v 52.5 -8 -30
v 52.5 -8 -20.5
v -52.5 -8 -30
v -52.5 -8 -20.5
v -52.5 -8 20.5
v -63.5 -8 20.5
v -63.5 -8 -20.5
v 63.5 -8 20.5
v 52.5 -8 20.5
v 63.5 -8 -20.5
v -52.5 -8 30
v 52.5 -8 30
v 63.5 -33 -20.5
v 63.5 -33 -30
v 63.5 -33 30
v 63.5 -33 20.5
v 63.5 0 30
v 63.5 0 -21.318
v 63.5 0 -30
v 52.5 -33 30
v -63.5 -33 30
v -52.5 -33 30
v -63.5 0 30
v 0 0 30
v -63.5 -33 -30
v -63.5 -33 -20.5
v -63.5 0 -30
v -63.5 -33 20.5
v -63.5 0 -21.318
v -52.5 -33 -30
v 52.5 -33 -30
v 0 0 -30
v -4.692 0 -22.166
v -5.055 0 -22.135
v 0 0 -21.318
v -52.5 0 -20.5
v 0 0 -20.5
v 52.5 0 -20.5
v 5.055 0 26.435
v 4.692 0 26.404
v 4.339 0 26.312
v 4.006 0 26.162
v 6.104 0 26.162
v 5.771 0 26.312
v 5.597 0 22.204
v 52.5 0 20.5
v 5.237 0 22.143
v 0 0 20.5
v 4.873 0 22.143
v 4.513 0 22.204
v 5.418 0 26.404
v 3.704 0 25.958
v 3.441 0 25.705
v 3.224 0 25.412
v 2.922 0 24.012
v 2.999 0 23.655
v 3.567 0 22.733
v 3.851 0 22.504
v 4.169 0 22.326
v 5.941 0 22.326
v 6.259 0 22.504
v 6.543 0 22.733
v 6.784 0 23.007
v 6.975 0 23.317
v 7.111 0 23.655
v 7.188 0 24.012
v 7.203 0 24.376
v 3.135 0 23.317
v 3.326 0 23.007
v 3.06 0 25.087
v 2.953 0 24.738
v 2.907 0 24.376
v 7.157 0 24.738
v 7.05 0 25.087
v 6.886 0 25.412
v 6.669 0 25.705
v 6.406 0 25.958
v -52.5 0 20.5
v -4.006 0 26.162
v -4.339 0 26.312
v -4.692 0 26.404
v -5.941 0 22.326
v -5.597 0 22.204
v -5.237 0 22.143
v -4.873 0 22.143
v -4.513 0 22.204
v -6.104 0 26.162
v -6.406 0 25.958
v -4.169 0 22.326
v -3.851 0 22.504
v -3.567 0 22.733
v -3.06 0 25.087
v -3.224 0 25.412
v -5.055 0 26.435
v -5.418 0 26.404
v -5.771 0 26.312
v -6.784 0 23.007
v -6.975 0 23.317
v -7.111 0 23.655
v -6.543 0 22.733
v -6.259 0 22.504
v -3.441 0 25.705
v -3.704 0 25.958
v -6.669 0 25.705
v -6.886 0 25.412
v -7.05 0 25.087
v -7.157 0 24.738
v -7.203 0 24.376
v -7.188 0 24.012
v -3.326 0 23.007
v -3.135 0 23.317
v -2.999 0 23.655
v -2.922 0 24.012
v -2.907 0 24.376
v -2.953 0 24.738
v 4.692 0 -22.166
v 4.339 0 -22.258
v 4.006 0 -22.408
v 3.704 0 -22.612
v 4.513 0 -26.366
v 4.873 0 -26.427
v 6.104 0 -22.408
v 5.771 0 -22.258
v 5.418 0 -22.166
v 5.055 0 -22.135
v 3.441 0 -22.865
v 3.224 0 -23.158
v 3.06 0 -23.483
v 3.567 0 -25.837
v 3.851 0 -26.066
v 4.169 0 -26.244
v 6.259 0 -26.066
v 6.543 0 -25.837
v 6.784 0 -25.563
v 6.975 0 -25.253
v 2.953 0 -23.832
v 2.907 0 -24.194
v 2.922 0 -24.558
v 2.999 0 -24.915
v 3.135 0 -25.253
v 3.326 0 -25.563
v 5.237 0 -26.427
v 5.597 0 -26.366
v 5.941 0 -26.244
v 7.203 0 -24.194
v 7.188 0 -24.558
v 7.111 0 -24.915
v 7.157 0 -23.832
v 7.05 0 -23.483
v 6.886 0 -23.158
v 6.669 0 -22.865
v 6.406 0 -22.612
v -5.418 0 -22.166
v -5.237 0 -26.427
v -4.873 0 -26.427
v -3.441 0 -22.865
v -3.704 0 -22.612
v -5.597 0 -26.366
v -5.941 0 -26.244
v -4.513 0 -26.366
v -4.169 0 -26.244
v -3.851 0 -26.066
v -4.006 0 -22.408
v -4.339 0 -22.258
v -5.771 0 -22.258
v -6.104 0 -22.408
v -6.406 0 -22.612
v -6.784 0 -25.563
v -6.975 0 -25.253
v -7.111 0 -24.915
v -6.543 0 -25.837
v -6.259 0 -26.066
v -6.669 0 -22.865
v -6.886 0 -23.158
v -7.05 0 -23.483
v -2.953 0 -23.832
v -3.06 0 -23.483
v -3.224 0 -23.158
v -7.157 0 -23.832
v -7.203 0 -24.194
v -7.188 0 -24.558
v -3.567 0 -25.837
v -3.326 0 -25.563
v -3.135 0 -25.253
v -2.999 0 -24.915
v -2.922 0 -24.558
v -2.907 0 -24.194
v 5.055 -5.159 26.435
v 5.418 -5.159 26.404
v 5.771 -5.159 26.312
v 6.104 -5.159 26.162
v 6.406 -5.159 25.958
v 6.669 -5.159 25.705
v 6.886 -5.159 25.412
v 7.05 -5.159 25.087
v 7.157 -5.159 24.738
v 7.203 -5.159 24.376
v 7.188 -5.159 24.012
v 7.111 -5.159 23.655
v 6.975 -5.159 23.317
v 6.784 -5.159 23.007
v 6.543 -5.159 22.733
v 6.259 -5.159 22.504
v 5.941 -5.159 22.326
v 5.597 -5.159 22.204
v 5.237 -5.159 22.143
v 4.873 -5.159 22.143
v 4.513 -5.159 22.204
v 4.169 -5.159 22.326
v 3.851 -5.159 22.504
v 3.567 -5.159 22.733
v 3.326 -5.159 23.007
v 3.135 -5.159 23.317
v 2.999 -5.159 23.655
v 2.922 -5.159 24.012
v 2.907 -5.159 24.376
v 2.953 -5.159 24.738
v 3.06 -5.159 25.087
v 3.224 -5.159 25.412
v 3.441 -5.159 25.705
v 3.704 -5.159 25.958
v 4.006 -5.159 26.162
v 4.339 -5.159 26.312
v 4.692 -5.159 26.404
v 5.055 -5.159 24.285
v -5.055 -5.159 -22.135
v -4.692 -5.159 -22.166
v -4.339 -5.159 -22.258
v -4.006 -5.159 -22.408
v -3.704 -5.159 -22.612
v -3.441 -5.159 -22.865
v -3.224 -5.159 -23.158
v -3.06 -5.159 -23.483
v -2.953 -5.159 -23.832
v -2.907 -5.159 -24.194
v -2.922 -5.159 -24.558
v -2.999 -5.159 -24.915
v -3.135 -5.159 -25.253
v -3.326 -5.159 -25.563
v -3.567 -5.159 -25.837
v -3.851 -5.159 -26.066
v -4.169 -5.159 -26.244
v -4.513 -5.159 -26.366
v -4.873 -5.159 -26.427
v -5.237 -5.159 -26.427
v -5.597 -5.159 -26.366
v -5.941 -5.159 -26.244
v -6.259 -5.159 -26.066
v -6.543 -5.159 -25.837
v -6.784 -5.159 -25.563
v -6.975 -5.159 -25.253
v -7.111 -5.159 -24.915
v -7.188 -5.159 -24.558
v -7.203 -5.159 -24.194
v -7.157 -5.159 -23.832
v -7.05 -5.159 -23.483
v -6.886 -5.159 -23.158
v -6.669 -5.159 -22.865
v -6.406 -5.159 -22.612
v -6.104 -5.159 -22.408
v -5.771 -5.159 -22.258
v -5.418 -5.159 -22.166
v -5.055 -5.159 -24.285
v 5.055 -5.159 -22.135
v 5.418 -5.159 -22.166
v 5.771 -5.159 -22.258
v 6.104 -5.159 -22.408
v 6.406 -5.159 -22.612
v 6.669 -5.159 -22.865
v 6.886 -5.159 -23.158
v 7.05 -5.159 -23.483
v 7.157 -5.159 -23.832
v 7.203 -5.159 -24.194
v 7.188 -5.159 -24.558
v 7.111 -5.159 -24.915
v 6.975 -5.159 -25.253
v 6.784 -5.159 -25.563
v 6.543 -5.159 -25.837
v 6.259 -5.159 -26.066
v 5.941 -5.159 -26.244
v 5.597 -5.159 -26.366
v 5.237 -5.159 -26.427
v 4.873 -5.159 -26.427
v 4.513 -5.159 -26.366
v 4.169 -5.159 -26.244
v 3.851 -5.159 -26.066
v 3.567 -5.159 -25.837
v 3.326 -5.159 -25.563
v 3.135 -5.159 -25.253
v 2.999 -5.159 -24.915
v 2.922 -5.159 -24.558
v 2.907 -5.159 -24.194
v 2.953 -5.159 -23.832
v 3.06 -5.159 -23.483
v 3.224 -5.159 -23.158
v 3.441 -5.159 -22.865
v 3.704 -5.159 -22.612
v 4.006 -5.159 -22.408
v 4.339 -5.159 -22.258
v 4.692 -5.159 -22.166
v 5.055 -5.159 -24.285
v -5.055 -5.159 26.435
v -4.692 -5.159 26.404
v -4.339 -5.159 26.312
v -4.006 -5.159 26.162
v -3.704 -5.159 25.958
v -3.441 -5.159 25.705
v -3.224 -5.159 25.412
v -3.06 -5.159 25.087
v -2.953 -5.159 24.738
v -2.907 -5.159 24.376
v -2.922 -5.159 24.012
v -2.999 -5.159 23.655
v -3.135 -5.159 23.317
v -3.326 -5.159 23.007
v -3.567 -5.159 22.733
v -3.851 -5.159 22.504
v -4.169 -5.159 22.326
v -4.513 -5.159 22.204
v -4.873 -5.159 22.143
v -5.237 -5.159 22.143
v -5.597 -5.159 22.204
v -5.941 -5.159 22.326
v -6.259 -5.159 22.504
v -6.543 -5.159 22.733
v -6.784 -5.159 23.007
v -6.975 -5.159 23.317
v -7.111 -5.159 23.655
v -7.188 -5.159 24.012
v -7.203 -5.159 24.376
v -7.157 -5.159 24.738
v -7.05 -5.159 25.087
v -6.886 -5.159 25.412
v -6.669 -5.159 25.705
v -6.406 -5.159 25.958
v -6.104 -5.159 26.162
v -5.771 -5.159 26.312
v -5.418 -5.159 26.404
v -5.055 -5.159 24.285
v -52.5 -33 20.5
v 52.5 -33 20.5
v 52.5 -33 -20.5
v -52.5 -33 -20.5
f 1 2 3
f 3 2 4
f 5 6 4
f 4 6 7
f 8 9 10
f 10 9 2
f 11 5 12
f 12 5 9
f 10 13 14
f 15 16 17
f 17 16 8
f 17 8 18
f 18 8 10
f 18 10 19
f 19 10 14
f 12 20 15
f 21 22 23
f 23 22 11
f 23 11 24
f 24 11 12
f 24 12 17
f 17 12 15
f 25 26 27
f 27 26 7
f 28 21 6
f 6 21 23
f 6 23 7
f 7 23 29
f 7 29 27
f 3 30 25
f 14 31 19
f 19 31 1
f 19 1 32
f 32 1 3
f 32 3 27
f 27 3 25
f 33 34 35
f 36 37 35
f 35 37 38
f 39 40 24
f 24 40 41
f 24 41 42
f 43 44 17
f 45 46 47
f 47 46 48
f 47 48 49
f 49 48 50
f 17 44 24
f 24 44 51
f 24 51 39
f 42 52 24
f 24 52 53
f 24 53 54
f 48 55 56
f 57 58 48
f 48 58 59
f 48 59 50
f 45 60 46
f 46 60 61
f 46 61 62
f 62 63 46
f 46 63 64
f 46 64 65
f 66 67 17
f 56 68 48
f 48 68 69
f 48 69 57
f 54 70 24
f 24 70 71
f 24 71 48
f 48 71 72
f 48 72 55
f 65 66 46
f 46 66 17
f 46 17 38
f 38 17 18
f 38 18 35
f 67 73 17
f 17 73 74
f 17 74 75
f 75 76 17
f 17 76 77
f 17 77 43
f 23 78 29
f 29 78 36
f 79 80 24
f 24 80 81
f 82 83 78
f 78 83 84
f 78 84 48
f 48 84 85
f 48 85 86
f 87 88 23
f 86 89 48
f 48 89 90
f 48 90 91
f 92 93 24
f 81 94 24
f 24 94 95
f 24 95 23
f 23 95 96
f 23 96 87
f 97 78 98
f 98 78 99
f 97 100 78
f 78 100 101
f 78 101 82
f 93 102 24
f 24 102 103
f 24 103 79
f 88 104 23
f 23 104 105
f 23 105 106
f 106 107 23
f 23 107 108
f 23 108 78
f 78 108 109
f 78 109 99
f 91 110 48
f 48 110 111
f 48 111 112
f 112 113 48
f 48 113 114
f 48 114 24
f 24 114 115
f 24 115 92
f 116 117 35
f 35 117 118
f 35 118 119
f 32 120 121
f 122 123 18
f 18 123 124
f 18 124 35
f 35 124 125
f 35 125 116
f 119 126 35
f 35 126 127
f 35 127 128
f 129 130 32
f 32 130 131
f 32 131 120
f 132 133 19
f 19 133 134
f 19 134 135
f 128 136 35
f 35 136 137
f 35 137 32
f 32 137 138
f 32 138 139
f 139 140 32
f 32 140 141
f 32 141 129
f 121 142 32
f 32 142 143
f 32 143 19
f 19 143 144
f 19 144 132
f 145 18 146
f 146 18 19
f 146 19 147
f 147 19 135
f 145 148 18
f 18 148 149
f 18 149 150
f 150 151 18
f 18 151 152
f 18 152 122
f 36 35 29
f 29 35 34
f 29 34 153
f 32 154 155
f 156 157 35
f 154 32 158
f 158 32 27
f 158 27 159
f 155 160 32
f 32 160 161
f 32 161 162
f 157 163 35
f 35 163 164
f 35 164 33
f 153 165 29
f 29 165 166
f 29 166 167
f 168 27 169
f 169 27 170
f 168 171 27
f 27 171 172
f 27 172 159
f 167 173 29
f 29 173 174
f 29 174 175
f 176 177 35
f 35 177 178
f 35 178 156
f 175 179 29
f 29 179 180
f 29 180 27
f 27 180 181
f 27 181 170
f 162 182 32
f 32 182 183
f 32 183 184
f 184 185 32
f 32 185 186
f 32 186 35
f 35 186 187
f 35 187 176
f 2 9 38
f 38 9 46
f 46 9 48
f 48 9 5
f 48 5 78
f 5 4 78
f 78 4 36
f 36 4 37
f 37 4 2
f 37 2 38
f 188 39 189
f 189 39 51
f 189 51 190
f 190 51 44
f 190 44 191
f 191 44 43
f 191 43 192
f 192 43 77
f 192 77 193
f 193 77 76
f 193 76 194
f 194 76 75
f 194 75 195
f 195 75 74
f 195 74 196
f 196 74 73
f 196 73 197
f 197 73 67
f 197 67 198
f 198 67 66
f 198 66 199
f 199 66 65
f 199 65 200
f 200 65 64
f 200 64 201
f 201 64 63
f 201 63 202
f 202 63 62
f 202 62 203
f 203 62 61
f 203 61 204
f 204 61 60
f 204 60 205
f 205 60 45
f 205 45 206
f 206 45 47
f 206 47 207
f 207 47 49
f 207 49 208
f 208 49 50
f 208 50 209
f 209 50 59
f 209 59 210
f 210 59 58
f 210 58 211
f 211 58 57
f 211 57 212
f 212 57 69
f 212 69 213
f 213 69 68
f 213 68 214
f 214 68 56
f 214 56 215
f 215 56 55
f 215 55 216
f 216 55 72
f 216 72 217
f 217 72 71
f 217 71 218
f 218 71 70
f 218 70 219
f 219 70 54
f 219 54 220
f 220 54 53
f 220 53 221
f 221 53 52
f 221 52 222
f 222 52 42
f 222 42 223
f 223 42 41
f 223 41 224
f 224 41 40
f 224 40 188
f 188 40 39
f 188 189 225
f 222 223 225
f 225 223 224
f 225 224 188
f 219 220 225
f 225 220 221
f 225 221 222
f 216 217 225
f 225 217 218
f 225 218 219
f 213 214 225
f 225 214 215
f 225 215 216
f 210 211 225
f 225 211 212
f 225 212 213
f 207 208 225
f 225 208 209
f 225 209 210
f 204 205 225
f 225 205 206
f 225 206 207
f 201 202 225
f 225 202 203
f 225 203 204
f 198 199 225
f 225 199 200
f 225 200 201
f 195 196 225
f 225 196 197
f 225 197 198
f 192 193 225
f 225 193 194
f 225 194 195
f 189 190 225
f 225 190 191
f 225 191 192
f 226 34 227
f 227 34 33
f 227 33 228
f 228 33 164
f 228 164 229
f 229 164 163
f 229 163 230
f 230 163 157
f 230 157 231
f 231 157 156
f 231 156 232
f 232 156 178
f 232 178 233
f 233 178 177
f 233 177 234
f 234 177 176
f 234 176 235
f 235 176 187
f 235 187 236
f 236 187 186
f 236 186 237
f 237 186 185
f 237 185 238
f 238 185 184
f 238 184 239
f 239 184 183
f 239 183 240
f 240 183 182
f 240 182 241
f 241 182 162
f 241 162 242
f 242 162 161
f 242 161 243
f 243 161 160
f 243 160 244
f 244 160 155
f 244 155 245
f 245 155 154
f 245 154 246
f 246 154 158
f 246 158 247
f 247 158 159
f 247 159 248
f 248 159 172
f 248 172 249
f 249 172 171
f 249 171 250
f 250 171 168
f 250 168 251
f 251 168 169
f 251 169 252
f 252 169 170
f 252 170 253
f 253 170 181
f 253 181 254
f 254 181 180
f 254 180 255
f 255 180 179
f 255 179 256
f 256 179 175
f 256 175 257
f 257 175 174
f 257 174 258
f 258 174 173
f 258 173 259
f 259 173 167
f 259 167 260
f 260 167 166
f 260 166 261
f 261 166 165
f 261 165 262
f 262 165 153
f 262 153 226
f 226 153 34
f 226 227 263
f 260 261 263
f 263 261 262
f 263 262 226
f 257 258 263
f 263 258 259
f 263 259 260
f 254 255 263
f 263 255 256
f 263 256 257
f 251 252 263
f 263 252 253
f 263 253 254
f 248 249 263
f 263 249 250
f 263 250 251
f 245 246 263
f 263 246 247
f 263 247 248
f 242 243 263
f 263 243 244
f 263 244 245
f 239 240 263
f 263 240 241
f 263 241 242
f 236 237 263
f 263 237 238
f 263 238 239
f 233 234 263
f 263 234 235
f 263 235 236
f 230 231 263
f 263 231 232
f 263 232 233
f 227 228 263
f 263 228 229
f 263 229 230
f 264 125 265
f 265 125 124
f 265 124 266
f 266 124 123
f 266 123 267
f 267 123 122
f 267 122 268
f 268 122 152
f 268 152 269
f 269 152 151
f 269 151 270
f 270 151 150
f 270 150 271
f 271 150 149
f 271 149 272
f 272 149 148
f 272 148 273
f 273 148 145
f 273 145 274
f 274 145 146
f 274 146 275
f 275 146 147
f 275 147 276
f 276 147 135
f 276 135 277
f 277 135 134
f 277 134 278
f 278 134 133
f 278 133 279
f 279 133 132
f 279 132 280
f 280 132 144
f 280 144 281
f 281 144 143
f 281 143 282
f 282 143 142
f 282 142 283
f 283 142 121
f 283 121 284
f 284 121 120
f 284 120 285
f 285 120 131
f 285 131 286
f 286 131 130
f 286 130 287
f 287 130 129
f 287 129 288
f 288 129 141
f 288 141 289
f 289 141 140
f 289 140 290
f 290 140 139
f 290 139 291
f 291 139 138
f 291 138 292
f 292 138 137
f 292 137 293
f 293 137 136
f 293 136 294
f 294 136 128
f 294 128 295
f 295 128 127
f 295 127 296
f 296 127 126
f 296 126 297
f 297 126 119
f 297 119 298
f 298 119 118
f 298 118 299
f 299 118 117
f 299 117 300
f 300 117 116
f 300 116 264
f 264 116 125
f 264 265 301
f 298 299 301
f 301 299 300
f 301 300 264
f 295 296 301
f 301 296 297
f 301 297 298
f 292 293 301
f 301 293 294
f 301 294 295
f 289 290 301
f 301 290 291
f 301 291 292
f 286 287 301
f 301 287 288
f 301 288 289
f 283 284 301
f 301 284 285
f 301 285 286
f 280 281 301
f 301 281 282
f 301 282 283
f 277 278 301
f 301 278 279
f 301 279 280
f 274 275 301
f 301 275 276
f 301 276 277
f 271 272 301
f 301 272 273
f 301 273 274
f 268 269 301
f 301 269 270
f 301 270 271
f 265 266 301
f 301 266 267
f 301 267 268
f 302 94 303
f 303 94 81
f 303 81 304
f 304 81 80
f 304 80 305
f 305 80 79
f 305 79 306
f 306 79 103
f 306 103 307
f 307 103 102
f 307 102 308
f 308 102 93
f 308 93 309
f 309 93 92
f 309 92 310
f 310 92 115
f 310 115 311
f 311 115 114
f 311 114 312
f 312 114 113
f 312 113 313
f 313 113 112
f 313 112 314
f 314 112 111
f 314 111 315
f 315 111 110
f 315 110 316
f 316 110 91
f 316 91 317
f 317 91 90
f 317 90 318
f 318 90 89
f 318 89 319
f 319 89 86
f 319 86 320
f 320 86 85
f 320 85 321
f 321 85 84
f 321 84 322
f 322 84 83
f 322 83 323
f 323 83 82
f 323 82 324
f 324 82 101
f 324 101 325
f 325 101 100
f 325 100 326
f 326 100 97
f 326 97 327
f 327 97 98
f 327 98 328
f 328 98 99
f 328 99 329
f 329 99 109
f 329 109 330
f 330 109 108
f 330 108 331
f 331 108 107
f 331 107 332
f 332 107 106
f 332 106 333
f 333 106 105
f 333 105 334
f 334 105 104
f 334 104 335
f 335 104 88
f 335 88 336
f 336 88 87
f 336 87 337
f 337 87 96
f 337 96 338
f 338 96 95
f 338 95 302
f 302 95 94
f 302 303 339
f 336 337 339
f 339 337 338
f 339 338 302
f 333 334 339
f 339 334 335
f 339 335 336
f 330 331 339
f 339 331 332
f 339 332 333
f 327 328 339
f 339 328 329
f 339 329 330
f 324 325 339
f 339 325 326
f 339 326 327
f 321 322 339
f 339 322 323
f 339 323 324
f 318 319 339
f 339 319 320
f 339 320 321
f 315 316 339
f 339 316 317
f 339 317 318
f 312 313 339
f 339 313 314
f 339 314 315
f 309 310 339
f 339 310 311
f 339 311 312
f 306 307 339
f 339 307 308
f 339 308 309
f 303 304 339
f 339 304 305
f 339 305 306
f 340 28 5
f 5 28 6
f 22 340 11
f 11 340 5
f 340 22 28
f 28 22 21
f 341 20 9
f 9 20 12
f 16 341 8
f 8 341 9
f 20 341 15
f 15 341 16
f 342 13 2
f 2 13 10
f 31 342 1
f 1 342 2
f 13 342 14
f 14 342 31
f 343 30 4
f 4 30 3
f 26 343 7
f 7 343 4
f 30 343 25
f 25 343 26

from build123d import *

# Parameters (mm, degrees)
SKETCH2_W           = 127
SKETCH2_H           = 60
SKETCH2_W_2         = 105
SKETCH2_H_2         = 41
BOSS_EXTRUDE2_DEPTH = 8
SKETCH3_R           = 2.15
CUT_EXTRUDE1_DEPTH  = 5.159375
SKETCH4_W           = 11
SKETCH4_H           = 9.5
BOSS_EXTRUDE3_DEPTH = 25


with BuildPart() as part:
    # Sketch2 → Boss-Extrude2 (new body)
    with BuildSketch(Plane(origin=(0, 0, 0), x_dir=(1, 0, 0), z_dir=(0, 1, 0))):
        Rectangle(SKETCH2_W, SKETCH2_H)
        Rectangle(SKETCH2_W_2, SKETCH2_H_2, mode=Mode.SUBTRACT)
    extrude(amount=-BOSS_EXTRUDE2_DEPTH)

    # Sketch3 → Cut-Extrude1 (cut)
    with BuildSketch(Plane(origin=(0, 0, 0), x_dir=(1, 0, 0), z_dir=(0, 1, 0))):
        with Locations((5.055, -24.285)):
            Circle(SKETCH3_R)
        with Locations((-5.055, 24.285)):
            Circle(SKETCH3_R)
        with Locations((5.055, 24.285)):
            Circle(SKETCH3_R)
        with Locations((-5.055, -24.285)):
            Circle(SKETCH3_R)
    extrude(amount=-CUT_EXTRUDE1_DEPTH, mode=Mode.SUBTRACT)

    # Sketch4 → Boss-Extrude3 (add)
    with BuildSketch(Plane.XZ.offset(8)):
        with Locations((-58, 25.25)):
            Rectangle(SKETCH4_W, SKETCH4_H)
        with Locations((58, 25.25)):
            Rectangle(SKETCH4_W, SKETCH4_H)
        with Locations((58, -25.25)):
            Rectangle(SKETCH4_W, SKETCH4_H)
        with Locations((-58, -25.25)):
            Rectangle(SKETCH4_W, SKETCH4_H)
    extrude(amount=BOSS_EXTRUDE3_DEPTH)


solid = part.part
